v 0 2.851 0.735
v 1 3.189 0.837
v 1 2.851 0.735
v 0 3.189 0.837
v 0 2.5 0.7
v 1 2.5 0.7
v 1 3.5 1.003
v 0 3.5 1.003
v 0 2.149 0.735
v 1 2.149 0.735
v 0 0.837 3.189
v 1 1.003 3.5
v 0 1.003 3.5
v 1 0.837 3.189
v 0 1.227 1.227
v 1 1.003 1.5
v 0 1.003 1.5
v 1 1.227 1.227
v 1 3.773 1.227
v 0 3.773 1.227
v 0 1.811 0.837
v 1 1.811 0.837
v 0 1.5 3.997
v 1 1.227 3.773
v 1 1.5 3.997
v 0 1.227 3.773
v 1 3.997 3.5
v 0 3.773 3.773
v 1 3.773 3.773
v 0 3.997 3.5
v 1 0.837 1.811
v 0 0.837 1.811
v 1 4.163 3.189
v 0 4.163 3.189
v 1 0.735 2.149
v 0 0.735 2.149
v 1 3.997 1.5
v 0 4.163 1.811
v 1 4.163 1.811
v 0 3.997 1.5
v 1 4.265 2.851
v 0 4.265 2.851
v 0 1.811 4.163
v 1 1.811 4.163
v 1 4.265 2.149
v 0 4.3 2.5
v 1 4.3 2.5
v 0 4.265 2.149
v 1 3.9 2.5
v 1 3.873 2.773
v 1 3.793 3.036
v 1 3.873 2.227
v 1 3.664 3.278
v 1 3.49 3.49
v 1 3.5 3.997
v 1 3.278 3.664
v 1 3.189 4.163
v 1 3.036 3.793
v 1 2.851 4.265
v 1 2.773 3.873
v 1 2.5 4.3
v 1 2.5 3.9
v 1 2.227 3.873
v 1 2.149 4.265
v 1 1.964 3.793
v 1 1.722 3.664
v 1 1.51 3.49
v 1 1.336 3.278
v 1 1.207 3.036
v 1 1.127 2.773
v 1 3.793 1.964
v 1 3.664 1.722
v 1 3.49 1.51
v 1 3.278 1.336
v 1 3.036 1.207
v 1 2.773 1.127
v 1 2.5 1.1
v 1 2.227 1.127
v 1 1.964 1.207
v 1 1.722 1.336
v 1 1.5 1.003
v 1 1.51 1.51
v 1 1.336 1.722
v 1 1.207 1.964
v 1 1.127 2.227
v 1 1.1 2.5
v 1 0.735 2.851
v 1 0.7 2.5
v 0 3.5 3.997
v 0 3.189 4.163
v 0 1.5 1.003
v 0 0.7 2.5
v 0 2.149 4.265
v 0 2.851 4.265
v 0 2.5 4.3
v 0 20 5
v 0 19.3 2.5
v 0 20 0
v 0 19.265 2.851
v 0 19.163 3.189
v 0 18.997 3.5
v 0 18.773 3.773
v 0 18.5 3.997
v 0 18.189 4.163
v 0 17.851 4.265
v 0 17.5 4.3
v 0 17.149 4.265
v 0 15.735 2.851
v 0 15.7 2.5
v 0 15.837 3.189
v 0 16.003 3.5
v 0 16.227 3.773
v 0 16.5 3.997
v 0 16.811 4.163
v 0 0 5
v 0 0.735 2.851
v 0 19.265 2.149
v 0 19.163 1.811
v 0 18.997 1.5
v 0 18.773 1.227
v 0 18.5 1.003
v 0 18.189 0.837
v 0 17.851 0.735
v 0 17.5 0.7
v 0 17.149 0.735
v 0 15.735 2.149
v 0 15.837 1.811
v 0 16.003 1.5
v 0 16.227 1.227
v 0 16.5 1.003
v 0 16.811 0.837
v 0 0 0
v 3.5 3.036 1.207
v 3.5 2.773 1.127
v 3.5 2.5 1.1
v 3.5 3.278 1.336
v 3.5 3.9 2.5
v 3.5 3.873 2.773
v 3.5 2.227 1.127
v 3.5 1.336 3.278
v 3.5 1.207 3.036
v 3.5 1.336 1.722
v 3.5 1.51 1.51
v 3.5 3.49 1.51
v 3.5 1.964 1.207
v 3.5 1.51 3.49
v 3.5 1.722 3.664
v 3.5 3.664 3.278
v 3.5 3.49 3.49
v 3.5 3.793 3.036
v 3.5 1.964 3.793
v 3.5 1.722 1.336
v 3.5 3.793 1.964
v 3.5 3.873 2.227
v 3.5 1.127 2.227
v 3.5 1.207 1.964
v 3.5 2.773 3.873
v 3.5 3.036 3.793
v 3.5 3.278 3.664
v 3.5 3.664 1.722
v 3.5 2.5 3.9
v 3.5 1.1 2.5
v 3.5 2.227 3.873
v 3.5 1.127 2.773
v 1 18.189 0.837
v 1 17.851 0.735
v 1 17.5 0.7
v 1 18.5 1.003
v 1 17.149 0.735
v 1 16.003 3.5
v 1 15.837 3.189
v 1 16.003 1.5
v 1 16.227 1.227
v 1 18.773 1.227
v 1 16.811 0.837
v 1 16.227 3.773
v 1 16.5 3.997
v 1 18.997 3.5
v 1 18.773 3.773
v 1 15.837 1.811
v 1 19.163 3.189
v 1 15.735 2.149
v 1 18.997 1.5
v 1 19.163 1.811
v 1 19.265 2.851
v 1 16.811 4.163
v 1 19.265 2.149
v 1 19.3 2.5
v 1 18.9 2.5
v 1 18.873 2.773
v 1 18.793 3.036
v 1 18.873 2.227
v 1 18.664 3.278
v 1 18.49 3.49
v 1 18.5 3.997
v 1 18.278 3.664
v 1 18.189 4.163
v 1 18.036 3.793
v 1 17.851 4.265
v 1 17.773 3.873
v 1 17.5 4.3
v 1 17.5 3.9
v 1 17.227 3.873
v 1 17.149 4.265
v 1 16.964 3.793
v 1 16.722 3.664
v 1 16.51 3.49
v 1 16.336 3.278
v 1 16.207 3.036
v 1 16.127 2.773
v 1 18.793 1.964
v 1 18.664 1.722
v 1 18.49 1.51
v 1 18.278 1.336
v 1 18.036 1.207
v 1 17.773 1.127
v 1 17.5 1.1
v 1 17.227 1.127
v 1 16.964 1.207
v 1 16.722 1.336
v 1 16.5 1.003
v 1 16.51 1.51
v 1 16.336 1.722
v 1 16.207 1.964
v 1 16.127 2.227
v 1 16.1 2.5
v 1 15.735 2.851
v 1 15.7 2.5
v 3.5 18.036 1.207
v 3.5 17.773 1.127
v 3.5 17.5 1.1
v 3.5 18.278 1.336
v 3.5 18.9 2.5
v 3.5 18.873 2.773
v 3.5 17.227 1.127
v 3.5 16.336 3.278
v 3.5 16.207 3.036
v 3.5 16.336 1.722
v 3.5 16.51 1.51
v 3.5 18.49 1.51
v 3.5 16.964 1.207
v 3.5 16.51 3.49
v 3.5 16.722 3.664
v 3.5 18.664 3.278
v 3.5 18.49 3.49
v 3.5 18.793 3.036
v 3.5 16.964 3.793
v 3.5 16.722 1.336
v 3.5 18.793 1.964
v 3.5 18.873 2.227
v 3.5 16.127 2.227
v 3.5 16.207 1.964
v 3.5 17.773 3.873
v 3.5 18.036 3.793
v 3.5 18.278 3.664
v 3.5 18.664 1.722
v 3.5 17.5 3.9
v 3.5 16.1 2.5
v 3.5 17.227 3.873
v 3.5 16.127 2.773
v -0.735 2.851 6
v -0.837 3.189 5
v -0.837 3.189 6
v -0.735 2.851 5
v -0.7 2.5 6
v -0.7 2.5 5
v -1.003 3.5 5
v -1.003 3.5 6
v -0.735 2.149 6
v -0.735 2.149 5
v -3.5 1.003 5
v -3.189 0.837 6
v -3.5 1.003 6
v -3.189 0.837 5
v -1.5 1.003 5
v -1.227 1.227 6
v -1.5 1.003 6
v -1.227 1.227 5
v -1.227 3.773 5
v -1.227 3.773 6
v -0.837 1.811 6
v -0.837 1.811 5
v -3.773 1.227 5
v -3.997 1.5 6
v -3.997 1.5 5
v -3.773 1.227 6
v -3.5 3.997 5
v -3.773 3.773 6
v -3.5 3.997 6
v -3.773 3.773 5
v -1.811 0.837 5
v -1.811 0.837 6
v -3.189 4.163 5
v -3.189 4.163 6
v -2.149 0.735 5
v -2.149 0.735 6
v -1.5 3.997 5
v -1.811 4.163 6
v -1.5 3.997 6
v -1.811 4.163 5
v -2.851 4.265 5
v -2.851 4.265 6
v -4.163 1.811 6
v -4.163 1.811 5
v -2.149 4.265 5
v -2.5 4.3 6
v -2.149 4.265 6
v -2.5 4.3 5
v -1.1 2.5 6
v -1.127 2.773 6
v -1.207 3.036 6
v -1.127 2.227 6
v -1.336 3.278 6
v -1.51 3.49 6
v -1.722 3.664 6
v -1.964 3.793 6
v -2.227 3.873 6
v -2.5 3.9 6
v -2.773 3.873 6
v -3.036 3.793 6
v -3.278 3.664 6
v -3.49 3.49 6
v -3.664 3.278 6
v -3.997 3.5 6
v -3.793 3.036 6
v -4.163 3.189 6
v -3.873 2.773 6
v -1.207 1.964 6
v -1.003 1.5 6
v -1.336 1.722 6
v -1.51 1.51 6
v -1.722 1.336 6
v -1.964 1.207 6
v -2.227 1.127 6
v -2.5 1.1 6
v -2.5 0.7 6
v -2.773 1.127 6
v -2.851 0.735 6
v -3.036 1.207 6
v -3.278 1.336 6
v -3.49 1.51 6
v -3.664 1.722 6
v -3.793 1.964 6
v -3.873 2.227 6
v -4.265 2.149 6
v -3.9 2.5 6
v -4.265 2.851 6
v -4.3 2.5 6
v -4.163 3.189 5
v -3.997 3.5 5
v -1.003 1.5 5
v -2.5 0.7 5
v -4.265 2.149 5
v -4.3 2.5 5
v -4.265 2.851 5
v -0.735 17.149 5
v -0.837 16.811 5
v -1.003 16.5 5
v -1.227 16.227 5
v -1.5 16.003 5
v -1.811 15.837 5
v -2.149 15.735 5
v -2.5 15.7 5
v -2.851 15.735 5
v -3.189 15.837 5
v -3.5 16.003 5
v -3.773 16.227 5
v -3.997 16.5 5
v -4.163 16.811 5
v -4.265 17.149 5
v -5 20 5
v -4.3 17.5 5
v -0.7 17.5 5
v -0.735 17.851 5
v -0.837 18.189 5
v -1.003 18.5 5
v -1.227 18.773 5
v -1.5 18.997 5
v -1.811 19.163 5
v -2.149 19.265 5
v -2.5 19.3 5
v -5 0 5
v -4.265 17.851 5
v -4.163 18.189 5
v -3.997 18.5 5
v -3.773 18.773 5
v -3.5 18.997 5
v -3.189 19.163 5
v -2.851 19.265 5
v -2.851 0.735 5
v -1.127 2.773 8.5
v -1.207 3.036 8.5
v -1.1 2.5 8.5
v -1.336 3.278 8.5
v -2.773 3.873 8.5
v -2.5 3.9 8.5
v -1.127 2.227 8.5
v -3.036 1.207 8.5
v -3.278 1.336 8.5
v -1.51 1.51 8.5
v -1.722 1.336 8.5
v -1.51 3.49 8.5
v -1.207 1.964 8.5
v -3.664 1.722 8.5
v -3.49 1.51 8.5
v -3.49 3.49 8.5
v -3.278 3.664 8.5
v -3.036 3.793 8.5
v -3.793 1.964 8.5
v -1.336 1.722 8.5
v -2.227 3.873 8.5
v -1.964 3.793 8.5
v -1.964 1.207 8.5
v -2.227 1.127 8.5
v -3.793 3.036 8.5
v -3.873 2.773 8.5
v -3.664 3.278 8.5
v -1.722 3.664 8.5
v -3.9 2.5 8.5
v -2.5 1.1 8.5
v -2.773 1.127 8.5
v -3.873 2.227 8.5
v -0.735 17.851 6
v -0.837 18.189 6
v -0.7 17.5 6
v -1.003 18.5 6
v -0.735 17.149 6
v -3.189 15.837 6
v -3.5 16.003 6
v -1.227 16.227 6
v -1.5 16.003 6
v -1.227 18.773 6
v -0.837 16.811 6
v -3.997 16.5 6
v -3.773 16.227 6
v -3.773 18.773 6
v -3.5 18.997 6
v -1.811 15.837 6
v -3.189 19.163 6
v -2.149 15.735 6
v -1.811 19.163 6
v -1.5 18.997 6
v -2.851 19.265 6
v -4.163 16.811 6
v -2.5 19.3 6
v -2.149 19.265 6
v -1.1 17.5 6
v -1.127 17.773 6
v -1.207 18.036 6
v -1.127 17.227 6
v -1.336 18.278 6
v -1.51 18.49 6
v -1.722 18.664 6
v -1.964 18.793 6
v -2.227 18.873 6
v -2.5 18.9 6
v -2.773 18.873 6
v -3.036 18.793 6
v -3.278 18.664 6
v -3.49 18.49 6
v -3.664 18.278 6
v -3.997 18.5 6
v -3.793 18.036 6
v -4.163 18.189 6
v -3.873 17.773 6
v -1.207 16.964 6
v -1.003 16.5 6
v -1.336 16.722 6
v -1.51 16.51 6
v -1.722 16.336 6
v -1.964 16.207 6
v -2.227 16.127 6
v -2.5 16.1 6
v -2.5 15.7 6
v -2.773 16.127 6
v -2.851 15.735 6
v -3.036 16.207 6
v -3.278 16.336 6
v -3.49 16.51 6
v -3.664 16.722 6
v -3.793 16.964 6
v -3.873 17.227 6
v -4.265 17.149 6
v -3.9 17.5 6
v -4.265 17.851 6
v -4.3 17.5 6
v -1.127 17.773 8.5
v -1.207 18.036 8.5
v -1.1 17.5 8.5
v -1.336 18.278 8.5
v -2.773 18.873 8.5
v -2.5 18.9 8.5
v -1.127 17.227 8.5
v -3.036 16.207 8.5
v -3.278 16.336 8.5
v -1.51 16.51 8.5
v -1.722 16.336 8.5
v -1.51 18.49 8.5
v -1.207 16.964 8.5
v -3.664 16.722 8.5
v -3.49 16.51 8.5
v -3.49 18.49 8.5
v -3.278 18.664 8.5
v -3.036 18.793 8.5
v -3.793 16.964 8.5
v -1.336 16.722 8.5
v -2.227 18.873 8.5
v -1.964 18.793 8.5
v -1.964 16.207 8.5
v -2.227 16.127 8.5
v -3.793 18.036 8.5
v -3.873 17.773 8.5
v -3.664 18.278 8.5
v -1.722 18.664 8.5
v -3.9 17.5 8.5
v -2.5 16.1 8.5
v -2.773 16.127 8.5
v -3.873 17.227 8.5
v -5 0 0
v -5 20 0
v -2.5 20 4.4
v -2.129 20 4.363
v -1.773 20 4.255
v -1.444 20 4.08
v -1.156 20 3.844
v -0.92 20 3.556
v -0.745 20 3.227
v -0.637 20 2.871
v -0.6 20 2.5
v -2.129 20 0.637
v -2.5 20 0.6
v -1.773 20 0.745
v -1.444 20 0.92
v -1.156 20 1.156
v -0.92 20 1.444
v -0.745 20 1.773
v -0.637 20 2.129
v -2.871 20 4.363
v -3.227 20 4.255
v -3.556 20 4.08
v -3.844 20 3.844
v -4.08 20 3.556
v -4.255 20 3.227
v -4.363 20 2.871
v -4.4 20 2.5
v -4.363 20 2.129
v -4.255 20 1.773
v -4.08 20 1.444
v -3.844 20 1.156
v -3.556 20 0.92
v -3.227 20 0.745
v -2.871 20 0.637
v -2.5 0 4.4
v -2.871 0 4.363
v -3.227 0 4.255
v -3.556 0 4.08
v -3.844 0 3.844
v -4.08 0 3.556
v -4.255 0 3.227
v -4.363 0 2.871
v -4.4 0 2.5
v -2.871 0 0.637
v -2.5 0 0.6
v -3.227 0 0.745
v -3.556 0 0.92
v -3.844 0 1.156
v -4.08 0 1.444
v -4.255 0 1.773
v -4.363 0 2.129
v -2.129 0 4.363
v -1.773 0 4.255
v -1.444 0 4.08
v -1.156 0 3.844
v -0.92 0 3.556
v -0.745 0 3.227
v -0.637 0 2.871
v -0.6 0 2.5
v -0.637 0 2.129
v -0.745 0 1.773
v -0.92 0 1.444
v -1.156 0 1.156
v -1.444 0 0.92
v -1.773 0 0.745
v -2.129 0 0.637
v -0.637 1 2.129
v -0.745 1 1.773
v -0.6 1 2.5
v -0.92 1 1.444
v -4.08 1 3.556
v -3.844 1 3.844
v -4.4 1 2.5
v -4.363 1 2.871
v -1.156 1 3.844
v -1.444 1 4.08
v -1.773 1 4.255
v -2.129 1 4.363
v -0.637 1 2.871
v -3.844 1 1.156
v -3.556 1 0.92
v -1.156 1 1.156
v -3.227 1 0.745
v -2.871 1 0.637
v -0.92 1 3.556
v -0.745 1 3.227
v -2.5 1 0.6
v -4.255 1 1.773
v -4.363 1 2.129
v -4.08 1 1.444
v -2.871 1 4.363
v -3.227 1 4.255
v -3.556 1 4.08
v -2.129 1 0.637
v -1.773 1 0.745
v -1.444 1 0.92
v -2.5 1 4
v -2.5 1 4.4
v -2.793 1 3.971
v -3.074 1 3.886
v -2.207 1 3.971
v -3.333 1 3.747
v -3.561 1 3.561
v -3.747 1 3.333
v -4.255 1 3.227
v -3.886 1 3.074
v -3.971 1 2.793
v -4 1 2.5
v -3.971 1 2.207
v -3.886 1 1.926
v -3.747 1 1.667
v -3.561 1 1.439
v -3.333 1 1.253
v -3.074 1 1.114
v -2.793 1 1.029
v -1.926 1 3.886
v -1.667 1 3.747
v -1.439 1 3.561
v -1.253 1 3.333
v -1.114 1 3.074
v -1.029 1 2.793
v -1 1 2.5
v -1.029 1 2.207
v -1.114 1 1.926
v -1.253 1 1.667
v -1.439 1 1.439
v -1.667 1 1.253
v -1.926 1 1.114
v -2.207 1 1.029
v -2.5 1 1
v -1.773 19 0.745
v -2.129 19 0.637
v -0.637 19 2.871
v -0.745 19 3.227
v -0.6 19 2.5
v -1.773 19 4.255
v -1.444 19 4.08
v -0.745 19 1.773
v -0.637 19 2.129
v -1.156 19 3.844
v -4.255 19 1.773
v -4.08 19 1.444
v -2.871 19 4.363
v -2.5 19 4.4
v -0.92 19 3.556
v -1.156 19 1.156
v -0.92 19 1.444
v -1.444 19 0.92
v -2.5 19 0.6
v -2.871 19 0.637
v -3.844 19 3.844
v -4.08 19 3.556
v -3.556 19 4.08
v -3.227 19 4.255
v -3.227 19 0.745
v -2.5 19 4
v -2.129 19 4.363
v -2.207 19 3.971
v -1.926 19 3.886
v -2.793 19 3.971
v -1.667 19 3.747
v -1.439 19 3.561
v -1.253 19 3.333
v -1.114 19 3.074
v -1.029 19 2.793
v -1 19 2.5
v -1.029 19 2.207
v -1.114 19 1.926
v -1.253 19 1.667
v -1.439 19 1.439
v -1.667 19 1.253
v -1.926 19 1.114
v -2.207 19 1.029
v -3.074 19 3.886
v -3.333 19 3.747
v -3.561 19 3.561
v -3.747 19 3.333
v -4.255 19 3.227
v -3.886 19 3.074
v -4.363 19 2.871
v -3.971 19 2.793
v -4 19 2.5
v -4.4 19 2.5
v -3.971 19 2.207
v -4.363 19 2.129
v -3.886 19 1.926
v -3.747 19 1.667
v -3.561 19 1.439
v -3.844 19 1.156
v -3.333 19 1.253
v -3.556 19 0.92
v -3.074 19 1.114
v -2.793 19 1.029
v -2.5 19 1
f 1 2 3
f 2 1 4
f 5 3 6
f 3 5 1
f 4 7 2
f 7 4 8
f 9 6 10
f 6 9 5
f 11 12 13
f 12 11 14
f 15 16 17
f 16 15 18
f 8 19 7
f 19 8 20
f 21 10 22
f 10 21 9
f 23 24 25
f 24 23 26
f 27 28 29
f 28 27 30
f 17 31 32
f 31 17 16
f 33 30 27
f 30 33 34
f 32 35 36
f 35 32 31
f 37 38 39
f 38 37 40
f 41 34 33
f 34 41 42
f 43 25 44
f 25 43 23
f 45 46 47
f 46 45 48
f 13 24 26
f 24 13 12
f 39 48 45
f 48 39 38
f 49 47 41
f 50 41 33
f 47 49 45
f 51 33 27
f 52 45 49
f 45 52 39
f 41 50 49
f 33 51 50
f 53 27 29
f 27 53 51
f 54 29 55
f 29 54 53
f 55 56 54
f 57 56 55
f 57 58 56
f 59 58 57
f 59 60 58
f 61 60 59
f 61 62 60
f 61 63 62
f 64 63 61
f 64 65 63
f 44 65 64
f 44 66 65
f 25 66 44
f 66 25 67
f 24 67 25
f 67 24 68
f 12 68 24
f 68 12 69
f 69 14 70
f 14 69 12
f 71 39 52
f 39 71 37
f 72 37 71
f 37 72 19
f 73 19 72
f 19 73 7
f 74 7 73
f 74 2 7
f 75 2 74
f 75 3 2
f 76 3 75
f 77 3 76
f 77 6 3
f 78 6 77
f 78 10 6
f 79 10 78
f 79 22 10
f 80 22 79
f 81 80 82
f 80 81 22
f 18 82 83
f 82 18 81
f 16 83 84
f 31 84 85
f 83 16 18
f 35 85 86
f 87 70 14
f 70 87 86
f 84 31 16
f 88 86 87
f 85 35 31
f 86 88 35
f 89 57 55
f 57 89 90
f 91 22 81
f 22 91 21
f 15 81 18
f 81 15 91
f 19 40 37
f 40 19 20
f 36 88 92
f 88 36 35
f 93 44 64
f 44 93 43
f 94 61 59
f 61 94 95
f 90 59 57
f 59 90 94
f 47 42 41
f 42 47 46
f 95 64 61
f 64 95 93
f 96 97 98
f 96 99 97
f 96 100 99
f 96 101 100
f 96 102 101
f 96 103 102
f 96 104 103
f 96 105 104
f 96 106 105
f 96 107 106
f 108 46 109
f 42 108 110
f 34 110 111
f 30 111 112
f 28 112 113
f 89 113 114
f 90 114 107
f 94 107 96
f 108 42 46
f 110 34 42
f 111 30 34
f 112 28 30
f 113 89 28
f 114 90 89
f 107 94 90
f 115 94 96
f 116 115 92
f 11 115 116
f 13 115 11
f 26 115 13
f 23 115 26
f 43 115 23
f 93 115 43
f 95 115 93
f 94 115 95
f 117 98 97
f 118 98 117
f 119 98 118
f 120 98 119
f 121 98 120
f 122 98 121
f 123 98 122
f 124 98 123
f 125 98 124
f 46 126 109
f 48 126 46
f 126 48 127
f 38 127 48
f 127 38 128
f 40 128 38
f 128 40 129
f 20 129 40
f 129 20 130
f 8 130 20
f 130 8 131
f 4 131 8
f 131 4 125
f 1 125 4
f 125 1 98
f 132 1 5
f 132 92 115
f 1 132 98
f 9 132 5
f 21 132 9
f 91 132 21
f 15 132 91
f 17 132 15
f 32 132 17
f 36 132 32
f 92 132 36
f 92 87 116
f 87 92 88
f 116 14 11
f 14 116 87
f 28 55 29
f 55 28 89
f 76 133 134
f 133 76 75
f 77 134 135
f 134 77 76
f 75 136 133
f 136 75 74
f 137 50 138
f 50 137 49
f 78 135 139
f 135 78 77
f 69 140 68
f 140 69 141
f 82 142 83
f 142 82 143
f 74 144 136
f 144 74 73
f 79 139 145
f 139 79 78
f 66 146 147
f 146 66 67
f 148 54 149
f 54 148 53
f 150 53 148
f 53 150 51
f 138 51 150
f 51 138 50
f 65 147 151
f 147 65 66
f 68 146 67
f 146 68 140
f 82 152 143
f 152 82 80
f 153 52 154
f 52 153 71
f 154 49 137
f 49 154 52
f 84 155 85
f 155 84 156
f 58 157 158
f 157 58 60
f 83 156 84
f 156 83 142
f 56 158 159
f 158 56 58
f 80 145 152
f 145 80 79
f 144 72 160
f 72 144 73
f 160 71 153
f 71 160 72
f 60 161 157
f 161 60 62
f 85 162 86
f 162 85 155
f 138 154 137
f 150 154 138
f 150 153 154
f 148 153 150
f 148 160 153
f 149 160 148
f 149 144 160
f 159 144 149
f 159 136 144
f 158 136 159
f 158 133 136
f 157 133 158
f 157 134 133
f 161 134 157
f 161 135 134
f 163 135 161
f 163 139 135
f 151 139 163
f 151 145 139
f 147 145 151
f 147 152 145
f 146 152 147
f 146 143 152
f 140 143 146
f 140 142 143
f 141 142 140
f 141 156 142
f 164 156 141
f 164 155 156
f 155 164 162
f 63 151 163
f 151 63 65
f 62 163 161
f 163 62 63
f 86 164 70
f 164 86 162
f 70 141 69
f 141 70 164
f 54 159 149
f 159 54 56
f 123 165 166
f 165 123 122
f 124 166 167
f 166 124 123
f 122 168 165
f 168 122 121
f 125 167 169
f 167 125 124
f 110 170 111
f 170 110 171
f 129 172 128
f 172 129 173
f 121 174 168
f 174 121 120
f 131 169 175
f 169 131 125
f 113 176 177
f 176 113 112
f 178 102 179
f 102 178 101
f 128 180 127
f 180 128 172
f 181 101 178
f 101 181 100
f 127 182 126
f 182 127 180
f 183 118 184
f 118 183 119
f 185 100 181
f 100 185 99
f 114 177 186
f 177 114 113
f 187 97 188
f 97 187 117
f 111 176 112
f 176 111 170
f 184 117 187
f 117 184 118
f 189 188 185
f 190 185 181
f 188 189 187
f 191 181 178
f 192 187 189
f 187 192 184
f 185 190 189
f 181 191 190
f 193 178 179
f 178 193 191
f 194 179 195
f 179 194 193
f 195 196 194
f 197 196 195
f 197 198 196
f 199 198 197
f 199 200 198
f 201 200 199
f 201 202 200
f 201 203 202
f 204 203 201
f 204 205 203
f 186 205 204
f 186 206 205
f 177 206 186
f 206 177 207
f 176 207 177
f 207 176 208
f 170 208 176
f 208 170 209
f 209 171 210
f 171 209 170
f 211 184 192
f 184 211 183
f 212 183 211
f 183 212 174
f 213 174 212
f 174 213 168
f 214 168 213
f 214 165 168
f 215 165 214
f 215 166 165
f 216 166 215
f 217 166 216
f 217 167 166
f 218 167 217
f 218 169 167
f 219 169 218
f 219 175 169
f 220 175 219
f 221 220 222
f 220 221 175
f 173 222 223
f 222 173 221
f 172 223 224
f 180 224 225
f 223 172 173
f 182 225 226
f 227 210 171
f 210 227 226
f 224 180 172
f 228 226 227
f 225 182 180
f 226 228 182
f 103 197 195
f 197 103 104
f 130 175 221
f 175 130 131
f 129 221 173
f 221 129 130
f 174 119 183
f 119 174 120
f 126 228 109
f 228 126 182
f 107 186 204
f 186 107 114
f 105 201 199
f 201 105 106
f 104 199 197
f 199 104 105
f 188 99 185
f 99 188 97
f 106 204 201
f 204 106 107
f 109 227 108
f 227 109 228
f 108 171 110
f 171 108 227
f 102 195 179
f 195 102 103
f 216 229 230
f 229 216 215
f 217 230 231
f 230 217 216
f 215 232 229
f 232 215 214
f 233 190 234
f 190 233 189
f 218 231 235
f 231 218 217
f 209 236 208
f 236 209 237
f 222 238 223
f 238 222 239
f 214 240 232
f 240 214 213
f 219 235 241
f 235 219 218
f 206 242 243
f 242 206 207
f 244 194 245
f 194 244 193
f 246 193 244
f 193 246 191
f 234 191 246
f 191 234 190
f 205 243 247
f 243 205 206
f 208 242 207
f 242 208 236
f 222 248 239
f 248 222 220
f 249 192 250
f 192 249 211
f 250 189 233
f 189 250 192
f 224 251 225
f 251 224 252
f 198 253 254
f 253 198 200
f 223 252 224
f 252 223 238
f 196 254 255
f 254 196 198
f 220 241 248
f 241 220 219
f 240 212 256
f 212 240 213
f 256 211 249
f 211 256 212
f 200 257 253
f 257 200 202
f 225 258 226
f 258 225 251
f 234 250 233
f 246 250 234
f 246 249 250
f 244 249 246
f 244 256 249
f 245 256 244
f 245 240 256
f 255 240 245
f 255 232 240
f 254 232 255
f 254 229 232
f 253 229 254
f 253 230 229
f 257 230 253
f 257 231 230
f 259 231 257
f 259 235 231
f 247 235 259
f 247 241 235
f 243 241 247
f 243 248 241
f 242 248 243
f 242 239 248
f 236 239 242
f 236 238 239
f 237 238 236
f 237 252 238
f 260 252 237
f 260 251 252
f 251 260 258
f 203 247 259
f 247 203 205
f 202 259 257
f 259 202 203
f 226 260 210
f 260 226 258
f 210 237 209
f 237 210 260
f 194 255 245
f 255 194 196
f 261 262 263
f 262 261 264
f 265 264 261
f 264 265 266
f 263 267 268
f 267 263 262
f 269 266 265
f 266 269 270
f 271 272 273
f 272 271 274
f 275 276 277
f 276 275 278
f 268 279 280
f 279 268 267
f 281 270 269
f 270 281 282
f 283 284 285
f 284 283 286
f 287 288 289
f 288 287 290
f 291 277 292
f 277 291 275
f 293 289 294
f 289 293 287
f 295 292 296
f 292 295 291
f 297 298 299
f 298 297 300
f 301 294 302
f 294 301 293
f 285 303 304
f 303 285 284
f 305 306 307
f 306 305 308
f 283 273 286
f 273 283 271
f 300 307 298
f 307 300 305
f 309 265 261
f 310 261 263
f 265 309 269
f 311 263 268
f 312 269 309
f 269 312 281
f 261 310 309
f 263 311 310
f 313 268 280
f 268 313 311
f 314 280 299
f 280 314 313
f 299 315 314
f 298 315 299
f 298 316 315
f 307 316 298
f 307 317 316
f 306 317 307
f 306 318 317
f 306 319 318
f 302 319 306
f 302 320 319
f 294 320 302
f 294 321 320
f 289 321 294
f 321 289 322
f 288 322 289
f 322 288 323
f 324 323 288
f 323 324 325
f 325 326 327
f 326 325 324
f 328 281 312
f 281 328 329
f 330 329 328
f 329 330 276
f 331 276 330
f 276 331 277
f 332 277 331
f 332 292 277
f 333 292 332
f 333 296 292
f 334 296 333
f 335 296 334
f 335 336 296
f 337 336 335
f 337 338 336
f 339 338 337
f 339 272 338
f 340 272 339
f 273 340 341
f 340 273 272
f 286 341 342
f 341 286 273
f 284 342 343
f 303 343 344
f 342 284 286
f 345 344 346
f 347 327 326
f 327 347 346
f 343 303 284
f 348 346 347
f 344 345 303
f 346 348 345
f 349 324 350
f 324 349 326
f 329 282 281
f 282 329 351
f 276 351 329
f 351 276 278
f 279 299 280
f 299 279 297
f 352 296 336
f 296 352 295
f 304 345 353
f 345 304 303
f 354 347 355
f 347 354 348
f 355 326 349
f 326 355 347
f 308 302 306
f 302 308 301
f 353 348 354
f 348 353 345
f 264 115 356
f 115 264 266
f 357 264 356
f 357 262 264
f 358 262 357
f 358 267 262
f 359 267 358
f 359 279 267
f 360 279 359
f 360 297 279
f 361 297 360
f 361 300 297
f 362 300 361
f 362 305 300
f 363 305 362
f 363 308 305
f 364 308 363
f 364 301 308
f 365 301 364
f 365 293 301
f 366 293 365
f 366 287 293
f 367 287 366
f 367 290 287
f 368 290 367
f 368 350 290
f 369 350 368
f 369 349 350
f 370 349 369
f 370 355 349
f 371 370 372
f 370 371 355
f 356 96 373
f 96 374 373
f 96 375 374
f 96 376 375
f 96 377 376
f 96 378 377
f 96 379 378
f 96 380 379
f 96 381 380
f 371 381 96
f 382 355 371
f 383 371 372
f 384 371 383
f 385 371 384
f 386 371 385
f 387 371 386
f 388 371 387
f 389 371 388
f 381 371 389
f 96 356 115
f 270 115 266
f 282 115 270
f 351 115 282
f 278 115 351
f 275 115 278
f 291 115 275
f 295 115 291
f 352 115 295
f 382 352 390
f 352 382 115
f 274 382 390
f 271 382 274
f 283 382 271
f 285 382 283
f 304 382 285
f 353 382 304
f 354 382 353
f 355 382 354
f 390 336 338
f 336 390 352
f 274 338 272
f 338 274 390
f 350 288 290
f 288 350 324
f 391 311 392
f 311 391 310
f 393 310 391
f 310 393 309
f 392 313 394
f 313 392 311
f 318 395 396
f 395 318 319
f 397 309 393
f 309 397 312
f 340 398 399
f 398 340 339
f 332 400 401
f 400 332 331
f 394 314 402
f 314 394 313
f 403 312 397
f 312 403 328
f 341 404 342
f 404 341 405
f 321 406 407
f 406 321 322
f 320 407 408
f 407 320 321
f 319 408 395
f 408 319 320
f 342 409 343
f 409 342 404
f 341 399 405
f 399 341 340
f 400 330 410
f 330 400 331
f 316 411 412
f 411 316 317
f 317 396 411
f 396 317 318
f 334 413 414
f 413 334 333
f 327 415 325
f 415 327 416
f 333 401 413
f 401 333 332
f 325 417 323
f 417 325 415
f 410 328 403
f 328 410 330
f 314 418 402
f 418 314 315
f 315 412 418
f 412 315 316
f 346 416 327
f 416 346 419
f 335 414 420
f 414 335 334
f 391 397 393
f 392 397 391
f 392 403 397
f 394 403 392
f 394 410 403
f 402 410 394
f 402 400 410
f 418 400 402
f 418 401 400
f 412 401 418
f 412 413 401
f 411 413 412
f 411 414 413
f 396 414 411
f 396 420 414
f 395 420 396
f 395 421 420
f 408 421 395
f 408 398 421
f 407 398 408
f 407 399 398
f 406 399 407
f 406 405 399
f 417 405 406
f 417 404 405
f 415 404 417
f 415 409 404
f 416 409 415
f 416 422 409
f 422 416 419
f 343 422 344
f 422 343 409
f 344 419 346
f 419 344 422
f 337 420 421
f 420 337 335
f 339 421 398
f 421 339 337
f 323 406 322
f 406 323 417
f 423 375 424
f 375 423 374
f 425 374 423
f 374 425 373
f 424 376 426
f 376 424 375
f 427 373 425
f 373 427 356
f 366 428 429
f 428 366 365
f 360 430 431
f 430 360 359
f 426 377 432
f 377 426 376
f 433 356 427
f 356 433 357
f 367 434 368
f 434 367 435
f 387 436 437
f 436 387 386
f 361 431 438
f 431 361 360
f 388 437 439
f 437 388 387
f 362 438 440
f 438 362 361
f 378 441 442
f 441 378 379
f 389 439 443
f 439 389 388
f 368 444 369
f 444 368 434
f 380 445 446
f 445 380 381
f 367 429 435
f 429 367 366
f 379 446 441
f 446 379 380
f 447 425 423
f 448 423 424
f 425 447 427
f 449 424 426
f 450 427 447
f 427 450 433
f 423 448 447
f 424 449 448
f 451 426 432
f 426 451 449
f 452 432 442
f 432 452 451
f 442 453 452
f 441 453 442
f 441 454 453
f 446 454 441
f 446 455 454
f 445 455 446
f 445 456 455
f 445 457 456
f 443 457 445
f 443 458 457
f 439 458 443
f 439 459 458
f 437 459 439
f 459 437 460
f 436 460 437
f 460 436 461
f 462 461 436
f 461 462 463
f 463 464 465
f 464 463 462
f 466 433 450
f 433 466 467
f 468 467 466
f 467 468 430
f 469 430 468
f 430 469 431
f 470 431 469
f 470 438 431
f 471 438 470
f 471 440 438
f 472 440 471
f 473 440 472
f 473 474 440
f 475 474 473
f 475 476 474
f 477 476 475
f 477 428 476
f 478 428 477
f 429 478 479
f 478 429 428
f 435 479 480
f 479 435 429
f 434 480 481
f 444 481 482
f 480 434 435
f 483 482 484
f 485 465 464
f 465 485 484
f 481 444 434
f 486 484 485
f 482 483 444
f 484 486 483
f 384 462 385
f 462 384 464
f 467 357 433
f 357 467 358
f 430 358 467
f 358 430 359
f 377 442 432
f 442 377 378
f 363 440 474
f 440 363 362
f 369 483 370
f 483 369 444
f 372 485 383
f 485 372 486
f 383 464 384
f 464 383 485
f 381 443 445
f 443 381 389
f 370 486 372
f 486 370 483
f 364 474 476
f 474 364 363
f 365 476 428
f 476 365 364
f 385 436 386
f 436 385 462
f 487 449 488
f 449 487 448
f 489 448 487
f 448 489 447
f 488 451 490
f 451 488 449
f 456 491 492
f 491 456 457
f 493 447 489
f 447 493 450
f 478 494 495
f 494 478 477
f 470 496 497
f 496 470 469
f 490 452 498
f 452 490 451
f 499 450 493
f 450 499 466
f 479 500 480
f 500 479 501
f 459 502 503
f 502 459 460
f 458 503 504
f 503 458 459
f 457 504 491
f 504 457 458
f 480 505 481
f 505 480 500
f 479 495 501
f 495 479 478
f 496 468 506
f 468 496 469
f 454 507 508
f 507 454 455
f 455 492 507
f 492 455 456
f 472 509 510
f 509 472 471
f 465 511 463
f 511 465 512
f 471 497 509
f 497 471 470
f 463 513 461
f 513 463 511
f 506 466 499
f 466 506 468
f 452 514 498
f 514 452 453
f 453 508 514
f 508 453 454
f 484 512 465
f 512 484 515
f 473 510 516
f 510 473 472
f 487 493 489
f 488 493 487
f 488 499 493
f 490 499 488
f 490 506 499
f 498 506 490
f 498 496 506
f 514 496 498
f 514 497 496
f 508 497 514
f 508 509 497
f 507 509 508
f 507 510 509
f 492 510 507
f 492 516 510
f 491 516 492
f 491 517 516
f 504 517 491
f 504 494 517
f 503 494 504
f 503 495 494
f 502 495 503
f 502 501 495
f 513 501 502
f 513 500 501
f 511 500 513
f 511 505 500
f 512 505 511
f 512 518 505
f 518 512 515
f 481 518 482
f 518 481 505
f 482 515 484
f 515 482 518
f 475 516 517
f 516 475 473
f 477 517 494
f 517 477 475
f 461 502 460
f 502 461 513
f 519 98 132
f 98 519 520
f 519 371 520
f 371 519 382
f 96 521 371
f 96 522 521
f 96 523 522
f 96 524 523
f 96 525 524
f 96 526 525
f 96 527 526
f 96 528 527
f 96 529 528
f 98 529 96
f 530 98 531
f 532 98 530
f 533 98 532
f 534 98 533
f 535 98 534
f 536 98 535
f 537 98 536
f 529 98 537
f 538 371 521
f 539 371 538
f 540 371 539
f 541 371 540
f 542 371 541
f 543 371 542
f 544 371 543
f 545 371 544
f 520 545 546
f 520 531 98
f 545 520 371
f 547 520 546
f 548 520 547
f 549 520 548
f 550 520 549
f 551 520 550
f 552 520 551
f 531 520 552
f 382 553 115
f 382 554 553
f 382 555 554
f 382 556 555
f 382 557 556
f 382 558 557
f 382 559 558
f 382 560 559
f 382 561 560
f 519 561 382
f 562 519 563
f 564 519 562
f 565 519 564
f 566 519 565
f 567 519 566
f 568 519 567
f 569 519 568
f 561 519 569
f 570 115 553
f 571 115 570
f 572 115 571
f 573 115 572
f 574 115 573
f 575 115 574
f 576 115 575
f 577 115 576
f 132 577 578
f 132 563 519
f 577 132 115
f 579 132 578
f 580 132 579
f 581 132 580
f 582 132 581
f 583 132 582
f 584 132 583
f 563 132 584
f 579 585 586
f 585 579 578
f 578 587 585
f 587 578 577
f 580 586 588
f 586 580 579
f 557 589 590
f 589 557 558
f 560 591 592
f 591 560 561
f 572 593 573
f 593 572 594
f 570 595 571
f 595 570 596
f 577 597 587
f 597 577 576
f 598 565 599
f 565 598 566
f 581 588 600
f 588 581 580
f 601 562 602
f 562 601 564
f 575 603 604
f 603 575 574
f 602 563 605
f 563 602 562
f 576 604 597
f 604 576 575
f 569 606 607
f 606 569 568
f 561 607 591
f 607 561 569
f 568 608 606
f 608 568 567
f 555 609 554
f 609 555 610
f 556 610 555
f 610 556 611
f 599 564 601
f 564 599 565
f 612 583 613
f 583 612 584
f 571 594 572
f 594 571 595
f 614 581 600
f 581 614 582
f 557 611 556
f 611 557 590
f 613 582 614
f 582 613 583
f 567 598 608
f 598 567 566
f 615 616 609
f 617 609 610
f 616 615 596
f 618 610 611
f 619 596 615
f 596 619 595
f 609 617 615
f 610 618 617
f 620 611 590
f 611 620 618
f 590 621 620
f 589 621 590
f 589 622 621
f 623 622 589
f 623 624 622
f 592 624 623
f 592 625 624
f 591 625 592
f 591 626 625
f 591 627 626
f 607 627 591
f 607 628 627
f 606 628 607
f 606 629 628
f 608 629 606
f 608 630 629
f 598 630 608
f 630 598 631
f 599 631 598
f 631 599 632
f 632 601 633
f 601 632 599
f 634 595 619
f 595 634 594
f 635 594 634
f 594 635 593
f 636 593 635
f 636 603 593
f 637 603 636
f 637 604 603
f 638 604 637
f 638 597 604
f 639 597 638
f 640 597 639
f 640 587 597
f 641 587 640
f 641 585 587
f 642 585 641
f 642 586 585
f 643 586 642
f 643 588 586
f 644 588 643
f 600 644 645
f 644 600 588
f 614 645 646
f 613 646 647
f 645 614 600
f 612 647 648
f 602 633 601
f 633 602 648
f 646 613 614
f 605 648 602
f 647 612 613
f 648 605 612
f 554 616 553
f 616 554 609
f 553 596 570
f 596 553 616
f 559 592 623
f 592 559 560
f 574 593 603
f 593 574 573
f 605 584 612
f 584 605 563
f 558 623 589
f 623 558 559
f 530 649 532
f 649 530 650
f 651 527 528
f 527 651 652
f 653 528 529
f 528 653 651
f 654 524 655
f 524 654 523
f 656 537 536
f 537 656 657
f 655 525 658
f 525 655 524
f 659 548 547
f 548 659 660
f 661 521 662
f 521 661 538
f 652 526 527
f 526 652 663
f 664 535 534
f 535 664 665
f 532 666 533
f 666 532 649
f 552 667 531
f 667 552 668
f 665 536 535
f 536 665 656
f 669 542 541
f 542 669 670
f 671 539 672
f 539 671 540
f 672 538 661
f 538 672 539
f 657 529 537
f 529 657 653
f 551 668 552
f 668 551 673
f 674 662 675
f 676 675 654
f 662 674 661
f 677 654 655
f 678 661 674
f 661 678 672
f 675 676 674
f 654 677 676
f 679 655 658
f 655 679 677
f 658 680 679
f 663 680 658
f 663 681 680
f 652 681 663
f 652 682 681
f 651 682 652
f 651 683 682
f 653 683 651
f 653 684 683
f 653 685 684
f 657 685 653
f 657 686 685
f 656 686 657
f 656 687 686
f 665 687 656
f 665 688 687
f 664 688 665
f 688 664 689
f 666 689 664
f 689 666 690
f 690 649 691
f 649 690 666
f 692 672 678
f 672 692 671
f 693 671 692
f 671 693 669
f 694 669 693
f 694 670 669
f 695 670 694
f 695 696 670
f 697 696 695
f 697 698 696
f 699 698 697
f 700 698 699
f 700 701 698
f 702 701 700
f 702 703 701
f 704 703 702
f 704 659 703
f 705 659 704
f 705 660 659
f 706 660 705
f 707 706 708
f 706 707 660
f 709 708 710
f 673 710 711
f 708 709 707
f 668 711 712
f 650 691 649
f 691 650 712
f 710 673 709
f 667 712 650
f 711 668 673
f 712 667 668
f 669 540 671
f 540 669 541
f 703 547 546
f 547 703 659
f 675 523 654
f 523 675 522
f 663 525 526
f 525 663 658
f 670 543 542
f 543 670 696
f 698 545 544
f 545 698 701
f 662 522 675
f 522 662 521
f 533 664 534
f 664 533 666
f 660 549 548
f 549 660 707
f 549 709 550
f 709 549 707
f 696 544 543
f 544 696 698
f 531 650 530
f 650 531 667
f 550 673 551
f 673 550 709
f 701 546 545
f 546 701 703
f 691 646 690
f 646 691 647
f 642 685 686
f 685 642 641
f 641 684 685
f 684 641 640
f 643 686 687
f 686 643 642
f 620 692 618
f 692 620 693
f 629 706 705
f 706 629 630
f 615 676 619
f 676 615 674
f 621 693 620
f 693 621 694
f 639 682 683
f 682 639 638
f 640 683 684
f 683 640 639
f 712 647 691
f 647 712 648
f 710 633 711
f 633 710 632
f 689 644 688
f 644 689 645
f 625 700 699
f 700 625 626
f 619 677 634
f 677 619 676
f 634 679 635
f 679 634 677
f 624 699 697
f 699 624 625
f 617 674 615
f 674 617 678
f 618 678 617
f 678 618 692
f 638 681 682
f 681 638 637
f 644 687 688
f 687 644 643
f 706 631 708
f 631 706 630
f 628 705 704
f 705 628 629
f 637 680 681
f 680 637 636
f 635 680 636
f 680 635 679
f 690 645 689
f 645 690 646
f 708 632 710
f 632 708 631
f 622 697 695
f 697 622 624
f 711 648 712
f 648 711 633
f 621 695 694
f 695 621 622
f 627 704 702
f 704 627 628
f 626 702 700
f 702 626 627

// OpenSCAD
// ============================================================
// CORNER — Design System 3D Modular
// ============================================================
// Viga de canto: preenche a lacuna que sobra quando duas
// PLATEs se encontram a 90° borda-com-borda. Seção
// wall_thickness × plate_thickness, comprimento em células.
//
// Pinos em 2 faces perpendiculares entram nos FUROS DE BORDA
// das PLATEs (edge_hole_d) — os furos de face (topo/base) e
// rebaixos ficam 100% livres para LINKs e ATOMs.
//
// Estrutura (vista lateral, X-Z):
//
//       │ │ parede (x ∈ [-wt, 0])
//       │ │
//       │ │
//       └┬┘ ← borda inferior da parede (z = pt)
//    ┌─┐ ▲ pinos ↑ furos de borda da parede
//    │▓├►┌──────────── base (z ∈ [0, pt])
//    └─┘ └──────────── pinos → furos de borda da base
//     ↑ viga preenche a lacuna wt × pt
//
// Lei do Grid preservada:
//   - face interna da parede em x = 0 (plano do grid)
//   - borda inferior da parede em z = pt (plano da superfície)
//   - furo da parede a cell_size/2 da superfície → ATOM alinha
//   - nada protrui: faces externas da viga ficam flush com
//     a base (embaixo) e com a parede (fora)
//
// Parâmetros:
// - cells           : comprimento da viga em células do grid
// - cell_size       : passo do grid (igual à PLATE)
// - plate_thickness : espessura da PLATE base
// - wall_thickness  : espessura da PLATE parede
// - edge_hole_d     : diâmetro do furo de borda (igual à PLATE)
// - edge_pin_len    : comprimento dos pinos (< edge_hole_depth)
// - tolerance       : folga de encaixe
// - canal_d         : canal axial ao longo da viga (0 = sólido)
// ============================================================

/* [Grid — manter igual à PLATE] */

// Comprimento da viga em células
cells = 1; // [1:1:20]

// Passo do grid (= cell_size da PLATE)
cell_size = 20; // [5:1:100]

// Espessura da PLATE base (mm)
plate_thickness = 5; // [1:0.5:30]

// Espessura da PLATE parede (mm)
wall_thickness = 5; // [1:0.5:30]

/* [Furos de borda — manter igual à PLATE] */

// Diâmetro do furo de borda da PLATE (mm)
edge_hole_d = 3; // [1:0.1:5]

// Distância do centro do furo/pino até a extremidade da célula
// (= thickness/2 — centro da seção da viga)
edge_inset = 2.5; // [1:0.25:5]

// Comprimento dos pinos — menor que edge_hole_depth da PLATE
// para o pino não bater no fundo antes de assentar
edge_pin_len = 3.5; // [1:0.25:9]

// Rebaixo do colar na boca dos furos da PLATE (manter igual)
// Colar na raiz do pino trava profundidade e reforça a raiz
edge_collar_w = 0.4; // [0:0.1:1]

// Profundidade do rebaixo / altura do colar (mm)
edge_collar_depth = 1; // [0.5:0.25:2]

/* [Bordas] */

// Raio de acabamento das arestas da viga (0 = arestas vivas)
border_radius = 0; // [0:0.1:2]

// Estilo do acabamento das arestas: round (raio) ou chamfer (chanfro 45°)
border_style = "round"; // [round, chamfer]

/* [Tolerância de impressão] */

// Folga de encaixe — reduz o pino para caber no furo de borda
tolerance = 0.2; // [0:0.05:0.5]

/* [Canal interno para fios] */

// Canal axial ao longo da viga (0 = sólido)
// 3mm = passa jumper Dupont (2.5mm); limitado pela seção da viga
canal_d = 3; // [0:0.1:5]

/* [Qualidade] */
$fn = 32;

// ============================================================
// CALCULADOS
// ============================================================

// Diâmetro efetivo do pino (com tolerância)
edge_pin_d = edge_hole_d - tolerance;

// Diâmetro do colar na raiz do pino (assenta no rebaixo da boca)
collar_d = edge_hole_d + 2 * edge_collar_w - tolerance;

// Comprimento total da viga
beam_length = cells * cell_size;

// Posições dos pinos ao longo da viga — 2 por célula, NAS
// EXTREMIDADES: a edge_inset de cada limite da célula.
// O pino da ponta fica a edge_inset do fim da viga = centro da
// seção de outra viga perpendicular → duas vigas formam um "L"
// flush: o pino de uma entra no canal axial (Ø3) da outra.
pin_positions = [
    for (c = [0 : cells - 1], s = [0, 1])
        c * cell_size + edge_inset + s * (cell_size - 2 * edge_inset)
];


// ============================================================
// MÓDULOS
// ============================================================

// Raio seguro — limitado pela seção da viga
safe_radius = min(border_radius, wall_thickness / 2 - 0.01, plate_thickness / 2 - 0.01);

// ------------------------------------------------------------
// Módulo: sólido de acabamento das arestas — esfera (round)
// ou octaedro (chamfer 45°), usado no minkowski
// ------------------------------------------------------------
module border_finish(r) {
    if (border_style == "chamfer")
        polyhedron(
            points = [[r,0,0],[-r,0,0],[0,r,0],[0,-r,0],[0,0,r],[0,0,-r]],
            faces  = [[4,2,0],[4,1,2],[4,3,1],[4,0,3],[5,0,2],[5,2,1],[5,1,3],[5,3,0]]
        );
    else
        sphere(r = r);
}

// ------------------------------------------------------------
// Módulo: corpo da viga com acabamento de aresta opcional
// ------------------------------------------------------------
module beam_body() {
    if (safe_radius <= 0) {
        translate([-wall_thickness, 0, 0])
            cube([wall_thickness, beam_length, plate_thickness]);
    } else {
        minkowski() {
            translate([-wall_thickness + safe_radius, safe_radius, safe_radius])
                cube([wall_thickness - 2 * safe_radius,
                      beam_length - 2 * safe_radius,
                      plate_thickness - 2 * safe_radius]);
            border_finish(safe_radius);
        }
    }
}

// ------------------------------------------------------------
// Módulo: CORNER completo
// Viga ocupa x ∈ [-wall_thickness, 0], z ∈ [0, plate_thickness],
// y ∈ [0, beam_length] — o mesmo volume da lacuna do canto
// ------------------------------------------------------------
// Pino com colar na raiz — orientado em +Z a partir da origem
module edge_pin() {
    if (edge_collar_w > 0)
        cylinder(d = collar_d, h = edge_collar_depth);
    cylinder(d = edge_pin_d, h = edge_pin_len);
}

module corner() {
    difference() {
        union() {
            // Corpo da viga
            beam_body();

            // Pinos face +X — entram nos furos de borda da BASE
            // centrados na espessura da base (z = pt/2)
            for (y = pin_positions)
                translate([0, y, plate_thickness / 2])
                    rotate([0, 90, 0])
                        edge_pin();

            // Pinos face +Z — entram nos furos de borda da PAREDE
            // centrados na espessura da parede (x = -wt/2)
            for (y = pin_positions)
                translate([-wall_thickness / 2, y, plate_thickness])
                    edge_pin();
        }

        // Canal axial para fios (se canal_d > 0)
        if (canal_d > 0) {
            translate([-wall_thickness / 2, -0.01, plate_thickness / 2])
                rotate([-90, 0, 0])
                    cylinder(d = canal_d, h = beam_length + 0.02);

            // Rebaixo do colar nas bocas do canal — permite o pino
            // (com colar) de outro CORNER/PIN entrar no encaixe em L
            if (edge_collar_w > 0) {
                translate([-wall_thickness / 2, -0.01, plate_thickness / 2])
                    rotate([-90, 0, 0])
                        cylinder(d = canal_d + 2 * edge_collar_w, h = edge_collar_depth + 0.01);
                translate([-wall_thickness / 2, beam_length + 0.01, plate_thickness / 2])
                    rotate([90, 0, 0])
                        cylinder(d = canal_d + 2 * edge_collar_w, h = edge_collar_depth + 0.01);
            }
        }
    }
}

// ============================================================
// RENDER
// ============================================================
part_color = [0.35, 0.38, 0.42];
color(part_color) corner();

// ============================================================
// INFO — dimensões no console
// ============================================================
echo("=== CORNER ===");
echo(str("Viga               : ", wall_thickness, " × ", plate_thickness, " × ", beam_length, "mm (", cells, " célula(s))"));
echo(str("Pinos por face     : ", len(pin_positions), " × Ø", edge_pin_d, "mm × ", edge_pin_len, "mm (furo receptor: Ø", edge_hole_d, "mm)"));
echo(str("Pinos              : a ", edge_inset, "mm das extremidades de cada célula (vão interno: ", cell_size - 2 * edge_inset, "mm)"));
echo(str("Encaixe em L       : pino da ponta a ", edge_inset, "mm do fim = centro da seção (", wall_thickness / 2, "mm): ", edge_inset == wall_thickness / 2 ? "SIM" : "VERIFICAR"));
echo(str("Canal axial        : ", canal_d > 0 ? str(canal_d, "mm") : "sólido (canal fechado)"));
echo(str("Tolerância         : ", tolerance, "mm"));
echo("---");
echo(str("Parede do canal    : ", canal_d == 0 || (min(wall_thickness, plate_thickness) - canal_d) / 2 >= 1 ? "SIM (>= 1mm)" : "VERIFICAR (seção fina demais)"));
echo(str("Pino cabe no furo (prof. 4mm): ", edge_pin_len < 4 ? "SIM" : "VERIFICAR (edge_pin_len >= edge_hole_depth)"));
